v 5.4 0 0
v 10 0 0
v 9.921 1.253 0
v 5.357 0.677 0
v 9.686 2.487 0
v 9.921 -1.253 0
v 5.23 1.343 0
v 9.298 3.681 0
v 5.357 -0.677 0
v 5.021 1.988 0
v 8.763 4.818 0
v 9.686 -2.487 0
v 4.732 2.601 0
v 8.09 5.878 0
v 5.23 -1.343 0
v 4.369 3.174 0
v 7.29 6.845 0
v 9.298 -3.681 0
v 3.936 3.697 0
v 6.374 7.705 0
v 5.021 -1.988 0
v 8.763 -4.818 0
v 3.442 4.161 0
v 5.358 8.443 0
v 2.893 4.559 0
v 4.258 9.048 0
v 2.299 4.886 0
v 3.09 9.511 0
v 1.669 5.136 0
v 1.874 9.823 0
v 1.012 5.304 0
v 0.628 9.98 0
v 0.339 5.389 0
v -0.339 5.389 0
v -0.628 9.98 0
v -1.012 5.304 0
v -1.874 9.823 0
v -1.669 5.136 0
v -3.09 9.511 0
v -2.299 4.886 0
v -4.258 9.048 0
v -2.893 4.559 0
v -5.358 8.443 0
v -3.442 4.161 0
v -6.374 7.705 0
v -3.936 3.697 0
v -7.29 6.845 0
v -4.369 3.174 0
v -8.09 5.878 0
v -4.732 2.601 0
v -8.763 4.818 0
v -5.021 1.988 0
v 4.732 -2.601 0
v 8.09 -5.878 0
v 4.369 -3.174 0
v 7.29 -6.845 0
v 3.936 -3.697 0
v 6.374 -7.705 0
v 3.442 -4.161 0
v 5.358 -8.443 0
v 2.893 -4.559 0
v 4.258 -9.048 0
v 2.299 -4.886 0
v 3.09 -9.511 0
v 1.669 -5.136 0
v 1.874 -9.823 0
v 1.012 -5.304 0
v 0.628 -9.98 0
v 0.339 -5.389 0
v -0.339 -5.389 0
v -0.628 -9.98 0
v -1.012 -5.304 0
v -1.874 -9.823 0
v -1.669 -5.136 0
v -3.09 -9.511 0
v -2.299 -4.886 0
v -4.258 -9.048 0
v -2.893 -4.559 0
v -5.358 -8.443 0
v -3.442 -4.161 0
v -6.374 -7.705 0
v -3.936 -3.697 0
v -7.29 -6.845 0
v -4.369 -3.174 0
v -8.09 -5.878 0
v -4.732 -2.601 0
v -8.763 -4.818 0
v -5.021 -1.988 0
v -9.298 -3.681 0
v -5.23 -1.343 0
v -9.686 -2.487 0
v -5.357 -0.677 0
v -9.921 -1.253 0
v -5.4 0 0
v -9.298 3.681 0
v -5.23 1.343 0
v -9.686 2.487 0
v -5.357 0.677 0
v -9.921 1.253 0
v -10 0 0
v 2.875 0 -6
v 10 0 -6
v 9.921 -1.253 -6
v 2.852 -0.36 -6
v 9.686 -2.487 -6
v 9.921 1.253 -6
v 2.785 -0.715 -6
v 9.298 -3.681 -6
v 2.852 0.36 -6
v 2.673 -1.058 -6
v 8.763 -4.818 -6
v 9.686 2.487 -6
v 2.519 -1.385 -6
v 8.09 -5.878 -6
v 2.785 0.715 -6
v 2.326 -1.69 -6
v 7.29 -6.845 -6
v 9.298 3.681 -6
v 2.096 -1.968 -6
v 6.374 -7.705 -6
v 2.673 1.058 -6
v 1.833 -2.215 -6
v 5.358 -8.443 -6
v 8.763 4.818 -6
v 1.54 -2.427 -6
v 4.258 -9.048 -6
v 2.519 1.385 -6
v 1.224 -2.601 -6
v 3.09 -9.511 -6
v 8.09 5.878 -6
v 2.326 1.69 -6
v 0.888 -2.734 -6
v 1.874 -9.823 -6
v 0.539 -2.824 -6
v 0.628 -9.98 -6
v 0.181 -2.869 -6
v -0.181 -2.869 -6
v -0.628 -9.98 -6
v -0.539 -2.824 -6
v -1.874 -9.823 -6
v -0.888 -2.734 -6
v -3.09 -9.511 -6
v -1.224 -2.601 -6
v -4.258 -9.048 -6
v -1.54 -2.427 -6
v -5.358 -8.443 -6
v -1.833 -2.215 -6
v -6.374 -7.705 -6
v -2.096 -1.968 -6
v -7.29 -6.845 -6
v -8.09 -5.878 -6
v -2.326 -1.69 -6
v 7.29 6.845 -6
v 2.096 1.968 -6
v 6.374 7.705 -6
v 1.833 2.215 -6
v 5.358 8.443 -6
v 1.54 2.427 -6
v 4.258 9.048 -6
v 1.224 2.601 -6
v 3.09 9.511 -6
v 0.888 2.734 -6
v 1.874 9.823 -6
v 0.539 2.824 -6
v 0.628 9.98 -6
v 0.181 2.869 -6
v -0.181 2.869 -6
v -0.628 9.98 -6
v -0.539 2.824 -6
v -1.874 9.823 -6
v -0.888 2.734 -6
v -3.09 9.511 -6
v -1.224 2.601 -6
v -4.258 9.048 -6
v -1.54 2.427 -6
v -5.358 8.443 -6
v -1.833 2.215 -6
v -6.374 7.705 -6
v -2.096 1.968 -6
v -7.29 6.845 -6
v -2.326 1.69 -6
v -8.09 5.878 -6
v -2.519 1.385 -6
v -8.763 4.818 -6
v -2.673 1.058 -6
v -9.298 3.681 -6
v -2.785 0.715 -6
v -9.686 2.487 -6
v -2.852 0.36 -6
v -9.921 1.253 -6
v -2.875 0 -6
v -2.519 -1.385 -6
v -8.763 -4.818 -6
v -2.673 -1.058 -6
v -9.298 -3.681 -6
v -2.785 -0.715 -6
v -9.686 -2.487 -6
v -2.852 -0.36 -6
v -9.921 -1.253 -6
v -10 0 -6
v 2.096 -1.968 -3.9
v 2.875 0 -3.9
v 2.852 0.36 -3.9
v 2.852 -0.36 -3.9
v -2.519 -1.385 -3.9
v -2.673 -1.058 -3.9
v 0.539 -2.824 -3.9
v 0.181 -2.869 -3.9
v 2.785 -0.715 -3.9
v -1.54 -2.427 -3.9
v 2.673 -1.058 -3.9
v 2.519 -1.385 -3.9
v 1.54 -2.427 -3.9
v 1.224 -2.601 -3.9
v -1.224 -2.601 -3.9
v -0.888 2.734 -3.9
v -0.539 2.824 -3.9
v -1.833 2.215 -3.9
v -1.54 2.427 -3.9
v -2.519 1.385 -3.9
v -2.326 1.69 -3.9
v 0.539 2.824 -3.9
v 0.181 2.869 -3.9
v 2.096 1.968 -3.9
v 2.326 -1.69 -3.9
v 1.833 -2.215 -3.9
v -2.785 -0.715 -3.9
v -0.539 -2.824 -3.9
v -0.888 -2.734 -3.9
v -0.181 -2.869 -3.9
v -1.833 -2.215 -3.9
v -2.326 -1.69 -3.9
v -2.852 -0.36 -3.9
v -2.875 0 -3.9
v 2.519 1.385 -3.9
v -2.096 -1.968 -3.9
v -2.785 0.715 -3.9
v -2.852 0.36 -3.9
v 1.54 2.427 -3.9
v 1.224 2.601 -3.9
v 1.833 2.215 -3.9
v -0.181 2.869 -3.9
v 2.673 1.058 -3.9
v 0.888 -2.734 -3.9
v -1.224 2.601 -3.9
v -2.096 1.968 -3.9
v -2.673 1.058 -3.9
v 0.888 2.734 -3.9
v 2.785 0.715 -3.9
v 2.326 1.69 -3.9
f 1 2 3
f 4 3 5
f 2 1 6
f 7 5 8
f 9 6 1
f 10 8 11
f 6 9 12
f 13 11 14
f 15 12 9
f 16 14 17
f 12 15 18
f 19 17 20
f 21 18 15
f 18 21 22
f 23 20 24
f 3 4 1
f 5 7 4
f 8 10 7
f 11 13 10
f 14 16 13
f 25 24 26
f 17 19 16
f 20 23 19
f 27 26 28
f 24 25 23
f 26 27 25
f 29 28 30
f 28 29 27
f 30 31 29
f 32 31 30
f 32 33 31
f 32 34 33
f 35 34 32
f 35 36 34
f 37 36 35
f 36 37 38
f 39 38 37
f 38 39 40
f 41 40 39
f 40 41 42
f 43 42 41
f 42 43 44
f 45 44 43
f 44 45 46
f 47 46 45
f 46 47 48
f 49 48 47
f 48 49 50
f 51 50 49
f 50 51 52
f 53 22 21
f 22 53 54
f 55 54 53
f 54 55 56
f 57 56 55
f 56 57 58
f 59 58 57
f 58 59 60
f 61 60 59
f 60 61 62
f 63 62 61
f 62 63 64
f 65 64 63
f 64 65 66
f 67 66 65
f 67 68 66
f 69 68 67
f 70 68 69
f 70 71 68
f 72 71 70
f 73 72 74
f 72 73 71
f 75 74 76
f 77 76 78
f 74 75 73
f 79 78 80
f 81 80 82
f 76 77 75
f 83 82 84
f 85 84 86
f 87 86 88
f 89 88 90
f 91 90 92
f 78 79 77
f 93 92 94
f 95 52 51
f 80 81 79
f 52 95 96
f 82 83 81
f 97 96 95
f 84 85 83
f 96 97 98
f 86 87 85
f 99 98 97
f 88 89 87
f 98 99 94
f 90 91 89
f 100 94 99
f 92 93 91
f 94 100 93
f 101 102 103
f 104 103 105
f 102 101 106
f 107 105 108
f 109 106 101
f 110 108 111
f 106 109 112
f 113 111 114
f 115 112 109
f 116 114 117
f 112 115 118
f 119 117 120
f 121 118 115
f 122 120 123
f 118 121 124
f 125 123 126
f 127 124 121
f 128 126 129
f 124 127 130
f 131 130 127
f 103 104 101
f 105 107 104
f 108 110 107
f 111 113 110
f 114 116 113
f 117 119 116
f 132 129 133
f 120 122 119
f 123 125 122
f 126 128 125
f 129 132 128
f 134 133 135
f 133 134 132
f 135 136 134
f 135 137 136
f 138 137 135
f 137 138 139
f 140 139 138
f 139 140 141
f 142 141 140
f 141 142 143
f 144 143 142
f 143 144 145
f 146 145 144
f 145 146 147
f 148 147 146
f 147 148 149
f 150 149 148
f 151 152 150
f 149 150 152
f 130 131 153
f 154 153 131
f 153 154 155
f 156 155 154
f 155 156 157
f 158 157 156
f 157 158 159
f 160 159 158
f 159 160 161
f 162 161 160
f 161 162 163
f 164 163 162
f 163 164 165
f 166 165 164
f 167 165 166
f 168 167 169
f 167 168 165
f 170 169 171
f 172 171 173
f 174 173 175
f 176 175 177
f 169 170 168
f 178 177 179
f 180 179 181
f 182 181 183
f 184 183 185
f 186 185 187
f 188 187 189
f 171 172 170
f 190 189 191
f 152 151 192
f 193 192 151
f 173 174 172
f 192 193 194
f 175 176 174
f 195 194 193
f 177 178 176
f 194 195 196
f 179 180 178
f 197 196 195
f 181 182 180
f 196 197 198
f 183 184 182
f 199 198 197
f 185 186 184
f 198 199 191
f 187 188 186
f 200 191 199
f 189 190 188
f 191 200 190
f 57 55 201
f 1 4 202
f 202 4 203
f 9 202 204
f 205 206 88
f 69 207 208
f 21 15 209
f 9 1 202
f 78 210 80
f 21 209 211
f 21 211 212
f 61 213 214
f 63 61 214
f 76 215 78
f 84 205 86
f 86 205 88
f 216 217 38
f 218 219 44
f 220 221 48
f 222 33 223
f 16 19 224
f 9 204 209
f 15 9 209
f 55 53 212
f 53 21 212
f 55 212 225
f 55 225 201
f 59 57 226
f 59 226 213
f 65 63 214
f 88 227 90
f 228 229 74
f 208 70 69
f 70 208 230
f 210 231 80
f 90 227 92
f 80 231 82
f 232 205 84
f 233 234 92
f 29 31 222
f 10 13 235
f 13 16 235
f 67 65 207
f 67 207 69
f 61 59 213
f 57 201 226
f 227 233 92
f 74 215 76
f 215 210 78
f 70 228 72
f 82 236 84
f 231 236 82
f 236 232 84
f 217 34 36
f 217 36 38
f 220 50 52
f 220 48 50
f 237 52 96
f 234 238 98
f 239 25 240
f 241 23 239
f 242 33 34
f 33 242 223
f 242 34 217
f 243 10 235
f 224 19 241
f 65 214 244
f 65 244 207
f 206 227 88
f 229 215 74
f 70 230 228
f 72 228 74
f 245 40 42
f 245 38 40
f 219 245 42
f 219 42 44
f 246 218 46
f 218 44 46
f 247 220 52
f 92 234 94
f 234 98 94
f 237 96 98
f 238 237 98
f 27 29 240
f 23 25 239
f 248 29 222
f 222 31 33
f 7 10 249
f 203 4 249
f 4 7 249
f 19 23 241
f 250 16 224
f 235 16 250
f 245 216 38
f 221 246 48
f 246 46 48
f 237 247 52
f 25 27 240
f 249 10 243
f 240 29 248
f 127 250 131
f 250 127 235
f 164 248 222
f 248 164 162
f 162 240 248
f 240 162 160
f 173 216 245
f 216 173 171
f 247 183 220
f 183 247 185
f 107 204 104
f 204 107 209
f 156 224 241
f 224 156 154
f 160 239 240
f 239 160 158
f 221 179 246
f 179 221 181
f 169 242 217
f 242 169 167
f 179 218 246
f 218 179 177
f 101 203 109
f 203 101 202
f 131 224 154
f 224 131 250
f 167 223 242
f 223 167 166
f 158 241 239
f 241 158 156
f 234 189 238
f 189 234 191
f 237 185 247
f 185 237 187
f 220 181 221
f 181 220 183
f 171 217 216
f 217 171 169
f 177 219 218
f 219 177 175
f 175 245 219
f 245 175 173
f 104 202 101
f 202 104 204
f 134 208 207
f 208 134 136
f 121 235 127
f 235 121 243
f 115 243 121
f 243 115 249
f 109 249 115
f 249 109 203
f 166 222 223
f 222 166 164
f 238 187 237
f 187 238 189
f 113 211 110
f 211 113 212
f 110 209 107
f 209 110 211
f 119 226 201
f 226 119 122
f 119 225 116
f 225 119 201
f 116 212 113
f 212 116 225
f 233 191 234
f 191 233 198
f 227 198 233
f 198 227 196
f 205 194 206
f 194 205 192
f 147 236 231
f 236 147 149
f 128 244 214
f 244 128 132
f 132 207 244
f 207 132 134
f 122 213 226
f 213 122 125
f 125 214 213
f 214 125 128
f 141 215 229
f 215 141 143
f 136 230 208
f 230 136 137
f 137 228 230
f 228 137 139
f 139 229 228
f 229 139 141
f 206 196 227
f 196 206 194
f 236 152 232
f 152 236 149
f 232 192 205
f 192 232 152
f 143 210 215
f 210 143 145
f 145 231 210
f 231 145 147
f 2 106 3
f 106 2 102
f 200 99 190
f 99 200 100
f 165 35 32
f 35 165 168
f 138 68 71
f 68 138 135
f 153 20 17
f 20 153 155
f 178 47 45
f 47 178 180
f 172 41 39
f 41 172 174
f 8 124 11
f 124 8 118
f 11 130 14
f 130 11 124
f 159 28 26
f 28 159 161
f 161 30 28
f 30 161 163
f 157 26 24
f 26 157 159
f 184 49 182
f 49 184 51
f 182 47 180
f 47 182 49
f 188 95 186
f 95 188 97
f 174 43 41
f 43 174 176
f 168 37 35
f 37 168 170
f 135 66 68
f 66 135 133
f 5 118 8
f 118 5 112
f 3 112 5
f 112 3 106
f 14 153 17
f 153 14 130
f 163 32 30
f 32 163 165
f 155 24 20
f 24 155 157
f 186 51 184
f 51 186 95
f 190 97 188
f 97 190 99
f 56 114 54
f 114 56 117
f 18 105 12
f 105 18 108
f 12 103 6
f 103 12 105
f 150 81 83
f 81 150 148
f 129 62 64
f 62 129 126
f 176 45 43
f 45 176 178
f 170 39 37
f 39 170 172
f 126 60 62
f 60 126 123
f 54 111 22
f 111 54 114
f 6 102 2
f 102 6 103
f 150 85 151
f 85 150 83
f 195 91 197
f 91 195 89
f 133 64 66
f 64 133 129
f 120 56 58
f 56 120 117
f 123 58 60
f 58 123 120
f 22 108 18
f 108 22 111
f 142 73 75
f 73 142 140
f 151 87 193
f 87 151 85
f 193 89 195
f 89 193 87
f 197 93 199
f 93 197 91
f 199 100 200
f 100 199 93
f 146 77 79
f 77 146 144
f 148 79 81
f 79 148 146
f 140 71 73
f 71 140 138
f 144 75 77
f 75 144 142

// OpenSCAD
$fn = 50;


difference() {
	union() {
		translate(v = [0, 0, -6.0000000000]) {
			cylinder(h = 6, r = 10.0000000000);
		}
		cylinder(h = 0, r = 16.0000000000);
	}
	union() {
		translate(v = [0, 0, 0]) {
			rotate(a = [0, 0, 0]) {
				difference() {
					union() {
						#translate(v = [0, 0, -6.0000000000]) {
							cylinder(h = 6, r = 2.6000000000);
						}
						#translate(v = [0, 0, -3.9000000000]) {
							cylinder(h = 3.9000000000, r = 10.0000000000, r1 = 2.8750000000, r2 = 5.4000000000);
						}
						#translate(v = [0, 0, -6.0000000000]) {
							cylinder(h = 6, r = 2.8750000000);
						}
						#translate(v = [0, 0, -6.0000000000]) {
							cylinder(h = 6, r = 2.6000000000);
						}
					}
					union();
				}
			}
		}
	}
}
